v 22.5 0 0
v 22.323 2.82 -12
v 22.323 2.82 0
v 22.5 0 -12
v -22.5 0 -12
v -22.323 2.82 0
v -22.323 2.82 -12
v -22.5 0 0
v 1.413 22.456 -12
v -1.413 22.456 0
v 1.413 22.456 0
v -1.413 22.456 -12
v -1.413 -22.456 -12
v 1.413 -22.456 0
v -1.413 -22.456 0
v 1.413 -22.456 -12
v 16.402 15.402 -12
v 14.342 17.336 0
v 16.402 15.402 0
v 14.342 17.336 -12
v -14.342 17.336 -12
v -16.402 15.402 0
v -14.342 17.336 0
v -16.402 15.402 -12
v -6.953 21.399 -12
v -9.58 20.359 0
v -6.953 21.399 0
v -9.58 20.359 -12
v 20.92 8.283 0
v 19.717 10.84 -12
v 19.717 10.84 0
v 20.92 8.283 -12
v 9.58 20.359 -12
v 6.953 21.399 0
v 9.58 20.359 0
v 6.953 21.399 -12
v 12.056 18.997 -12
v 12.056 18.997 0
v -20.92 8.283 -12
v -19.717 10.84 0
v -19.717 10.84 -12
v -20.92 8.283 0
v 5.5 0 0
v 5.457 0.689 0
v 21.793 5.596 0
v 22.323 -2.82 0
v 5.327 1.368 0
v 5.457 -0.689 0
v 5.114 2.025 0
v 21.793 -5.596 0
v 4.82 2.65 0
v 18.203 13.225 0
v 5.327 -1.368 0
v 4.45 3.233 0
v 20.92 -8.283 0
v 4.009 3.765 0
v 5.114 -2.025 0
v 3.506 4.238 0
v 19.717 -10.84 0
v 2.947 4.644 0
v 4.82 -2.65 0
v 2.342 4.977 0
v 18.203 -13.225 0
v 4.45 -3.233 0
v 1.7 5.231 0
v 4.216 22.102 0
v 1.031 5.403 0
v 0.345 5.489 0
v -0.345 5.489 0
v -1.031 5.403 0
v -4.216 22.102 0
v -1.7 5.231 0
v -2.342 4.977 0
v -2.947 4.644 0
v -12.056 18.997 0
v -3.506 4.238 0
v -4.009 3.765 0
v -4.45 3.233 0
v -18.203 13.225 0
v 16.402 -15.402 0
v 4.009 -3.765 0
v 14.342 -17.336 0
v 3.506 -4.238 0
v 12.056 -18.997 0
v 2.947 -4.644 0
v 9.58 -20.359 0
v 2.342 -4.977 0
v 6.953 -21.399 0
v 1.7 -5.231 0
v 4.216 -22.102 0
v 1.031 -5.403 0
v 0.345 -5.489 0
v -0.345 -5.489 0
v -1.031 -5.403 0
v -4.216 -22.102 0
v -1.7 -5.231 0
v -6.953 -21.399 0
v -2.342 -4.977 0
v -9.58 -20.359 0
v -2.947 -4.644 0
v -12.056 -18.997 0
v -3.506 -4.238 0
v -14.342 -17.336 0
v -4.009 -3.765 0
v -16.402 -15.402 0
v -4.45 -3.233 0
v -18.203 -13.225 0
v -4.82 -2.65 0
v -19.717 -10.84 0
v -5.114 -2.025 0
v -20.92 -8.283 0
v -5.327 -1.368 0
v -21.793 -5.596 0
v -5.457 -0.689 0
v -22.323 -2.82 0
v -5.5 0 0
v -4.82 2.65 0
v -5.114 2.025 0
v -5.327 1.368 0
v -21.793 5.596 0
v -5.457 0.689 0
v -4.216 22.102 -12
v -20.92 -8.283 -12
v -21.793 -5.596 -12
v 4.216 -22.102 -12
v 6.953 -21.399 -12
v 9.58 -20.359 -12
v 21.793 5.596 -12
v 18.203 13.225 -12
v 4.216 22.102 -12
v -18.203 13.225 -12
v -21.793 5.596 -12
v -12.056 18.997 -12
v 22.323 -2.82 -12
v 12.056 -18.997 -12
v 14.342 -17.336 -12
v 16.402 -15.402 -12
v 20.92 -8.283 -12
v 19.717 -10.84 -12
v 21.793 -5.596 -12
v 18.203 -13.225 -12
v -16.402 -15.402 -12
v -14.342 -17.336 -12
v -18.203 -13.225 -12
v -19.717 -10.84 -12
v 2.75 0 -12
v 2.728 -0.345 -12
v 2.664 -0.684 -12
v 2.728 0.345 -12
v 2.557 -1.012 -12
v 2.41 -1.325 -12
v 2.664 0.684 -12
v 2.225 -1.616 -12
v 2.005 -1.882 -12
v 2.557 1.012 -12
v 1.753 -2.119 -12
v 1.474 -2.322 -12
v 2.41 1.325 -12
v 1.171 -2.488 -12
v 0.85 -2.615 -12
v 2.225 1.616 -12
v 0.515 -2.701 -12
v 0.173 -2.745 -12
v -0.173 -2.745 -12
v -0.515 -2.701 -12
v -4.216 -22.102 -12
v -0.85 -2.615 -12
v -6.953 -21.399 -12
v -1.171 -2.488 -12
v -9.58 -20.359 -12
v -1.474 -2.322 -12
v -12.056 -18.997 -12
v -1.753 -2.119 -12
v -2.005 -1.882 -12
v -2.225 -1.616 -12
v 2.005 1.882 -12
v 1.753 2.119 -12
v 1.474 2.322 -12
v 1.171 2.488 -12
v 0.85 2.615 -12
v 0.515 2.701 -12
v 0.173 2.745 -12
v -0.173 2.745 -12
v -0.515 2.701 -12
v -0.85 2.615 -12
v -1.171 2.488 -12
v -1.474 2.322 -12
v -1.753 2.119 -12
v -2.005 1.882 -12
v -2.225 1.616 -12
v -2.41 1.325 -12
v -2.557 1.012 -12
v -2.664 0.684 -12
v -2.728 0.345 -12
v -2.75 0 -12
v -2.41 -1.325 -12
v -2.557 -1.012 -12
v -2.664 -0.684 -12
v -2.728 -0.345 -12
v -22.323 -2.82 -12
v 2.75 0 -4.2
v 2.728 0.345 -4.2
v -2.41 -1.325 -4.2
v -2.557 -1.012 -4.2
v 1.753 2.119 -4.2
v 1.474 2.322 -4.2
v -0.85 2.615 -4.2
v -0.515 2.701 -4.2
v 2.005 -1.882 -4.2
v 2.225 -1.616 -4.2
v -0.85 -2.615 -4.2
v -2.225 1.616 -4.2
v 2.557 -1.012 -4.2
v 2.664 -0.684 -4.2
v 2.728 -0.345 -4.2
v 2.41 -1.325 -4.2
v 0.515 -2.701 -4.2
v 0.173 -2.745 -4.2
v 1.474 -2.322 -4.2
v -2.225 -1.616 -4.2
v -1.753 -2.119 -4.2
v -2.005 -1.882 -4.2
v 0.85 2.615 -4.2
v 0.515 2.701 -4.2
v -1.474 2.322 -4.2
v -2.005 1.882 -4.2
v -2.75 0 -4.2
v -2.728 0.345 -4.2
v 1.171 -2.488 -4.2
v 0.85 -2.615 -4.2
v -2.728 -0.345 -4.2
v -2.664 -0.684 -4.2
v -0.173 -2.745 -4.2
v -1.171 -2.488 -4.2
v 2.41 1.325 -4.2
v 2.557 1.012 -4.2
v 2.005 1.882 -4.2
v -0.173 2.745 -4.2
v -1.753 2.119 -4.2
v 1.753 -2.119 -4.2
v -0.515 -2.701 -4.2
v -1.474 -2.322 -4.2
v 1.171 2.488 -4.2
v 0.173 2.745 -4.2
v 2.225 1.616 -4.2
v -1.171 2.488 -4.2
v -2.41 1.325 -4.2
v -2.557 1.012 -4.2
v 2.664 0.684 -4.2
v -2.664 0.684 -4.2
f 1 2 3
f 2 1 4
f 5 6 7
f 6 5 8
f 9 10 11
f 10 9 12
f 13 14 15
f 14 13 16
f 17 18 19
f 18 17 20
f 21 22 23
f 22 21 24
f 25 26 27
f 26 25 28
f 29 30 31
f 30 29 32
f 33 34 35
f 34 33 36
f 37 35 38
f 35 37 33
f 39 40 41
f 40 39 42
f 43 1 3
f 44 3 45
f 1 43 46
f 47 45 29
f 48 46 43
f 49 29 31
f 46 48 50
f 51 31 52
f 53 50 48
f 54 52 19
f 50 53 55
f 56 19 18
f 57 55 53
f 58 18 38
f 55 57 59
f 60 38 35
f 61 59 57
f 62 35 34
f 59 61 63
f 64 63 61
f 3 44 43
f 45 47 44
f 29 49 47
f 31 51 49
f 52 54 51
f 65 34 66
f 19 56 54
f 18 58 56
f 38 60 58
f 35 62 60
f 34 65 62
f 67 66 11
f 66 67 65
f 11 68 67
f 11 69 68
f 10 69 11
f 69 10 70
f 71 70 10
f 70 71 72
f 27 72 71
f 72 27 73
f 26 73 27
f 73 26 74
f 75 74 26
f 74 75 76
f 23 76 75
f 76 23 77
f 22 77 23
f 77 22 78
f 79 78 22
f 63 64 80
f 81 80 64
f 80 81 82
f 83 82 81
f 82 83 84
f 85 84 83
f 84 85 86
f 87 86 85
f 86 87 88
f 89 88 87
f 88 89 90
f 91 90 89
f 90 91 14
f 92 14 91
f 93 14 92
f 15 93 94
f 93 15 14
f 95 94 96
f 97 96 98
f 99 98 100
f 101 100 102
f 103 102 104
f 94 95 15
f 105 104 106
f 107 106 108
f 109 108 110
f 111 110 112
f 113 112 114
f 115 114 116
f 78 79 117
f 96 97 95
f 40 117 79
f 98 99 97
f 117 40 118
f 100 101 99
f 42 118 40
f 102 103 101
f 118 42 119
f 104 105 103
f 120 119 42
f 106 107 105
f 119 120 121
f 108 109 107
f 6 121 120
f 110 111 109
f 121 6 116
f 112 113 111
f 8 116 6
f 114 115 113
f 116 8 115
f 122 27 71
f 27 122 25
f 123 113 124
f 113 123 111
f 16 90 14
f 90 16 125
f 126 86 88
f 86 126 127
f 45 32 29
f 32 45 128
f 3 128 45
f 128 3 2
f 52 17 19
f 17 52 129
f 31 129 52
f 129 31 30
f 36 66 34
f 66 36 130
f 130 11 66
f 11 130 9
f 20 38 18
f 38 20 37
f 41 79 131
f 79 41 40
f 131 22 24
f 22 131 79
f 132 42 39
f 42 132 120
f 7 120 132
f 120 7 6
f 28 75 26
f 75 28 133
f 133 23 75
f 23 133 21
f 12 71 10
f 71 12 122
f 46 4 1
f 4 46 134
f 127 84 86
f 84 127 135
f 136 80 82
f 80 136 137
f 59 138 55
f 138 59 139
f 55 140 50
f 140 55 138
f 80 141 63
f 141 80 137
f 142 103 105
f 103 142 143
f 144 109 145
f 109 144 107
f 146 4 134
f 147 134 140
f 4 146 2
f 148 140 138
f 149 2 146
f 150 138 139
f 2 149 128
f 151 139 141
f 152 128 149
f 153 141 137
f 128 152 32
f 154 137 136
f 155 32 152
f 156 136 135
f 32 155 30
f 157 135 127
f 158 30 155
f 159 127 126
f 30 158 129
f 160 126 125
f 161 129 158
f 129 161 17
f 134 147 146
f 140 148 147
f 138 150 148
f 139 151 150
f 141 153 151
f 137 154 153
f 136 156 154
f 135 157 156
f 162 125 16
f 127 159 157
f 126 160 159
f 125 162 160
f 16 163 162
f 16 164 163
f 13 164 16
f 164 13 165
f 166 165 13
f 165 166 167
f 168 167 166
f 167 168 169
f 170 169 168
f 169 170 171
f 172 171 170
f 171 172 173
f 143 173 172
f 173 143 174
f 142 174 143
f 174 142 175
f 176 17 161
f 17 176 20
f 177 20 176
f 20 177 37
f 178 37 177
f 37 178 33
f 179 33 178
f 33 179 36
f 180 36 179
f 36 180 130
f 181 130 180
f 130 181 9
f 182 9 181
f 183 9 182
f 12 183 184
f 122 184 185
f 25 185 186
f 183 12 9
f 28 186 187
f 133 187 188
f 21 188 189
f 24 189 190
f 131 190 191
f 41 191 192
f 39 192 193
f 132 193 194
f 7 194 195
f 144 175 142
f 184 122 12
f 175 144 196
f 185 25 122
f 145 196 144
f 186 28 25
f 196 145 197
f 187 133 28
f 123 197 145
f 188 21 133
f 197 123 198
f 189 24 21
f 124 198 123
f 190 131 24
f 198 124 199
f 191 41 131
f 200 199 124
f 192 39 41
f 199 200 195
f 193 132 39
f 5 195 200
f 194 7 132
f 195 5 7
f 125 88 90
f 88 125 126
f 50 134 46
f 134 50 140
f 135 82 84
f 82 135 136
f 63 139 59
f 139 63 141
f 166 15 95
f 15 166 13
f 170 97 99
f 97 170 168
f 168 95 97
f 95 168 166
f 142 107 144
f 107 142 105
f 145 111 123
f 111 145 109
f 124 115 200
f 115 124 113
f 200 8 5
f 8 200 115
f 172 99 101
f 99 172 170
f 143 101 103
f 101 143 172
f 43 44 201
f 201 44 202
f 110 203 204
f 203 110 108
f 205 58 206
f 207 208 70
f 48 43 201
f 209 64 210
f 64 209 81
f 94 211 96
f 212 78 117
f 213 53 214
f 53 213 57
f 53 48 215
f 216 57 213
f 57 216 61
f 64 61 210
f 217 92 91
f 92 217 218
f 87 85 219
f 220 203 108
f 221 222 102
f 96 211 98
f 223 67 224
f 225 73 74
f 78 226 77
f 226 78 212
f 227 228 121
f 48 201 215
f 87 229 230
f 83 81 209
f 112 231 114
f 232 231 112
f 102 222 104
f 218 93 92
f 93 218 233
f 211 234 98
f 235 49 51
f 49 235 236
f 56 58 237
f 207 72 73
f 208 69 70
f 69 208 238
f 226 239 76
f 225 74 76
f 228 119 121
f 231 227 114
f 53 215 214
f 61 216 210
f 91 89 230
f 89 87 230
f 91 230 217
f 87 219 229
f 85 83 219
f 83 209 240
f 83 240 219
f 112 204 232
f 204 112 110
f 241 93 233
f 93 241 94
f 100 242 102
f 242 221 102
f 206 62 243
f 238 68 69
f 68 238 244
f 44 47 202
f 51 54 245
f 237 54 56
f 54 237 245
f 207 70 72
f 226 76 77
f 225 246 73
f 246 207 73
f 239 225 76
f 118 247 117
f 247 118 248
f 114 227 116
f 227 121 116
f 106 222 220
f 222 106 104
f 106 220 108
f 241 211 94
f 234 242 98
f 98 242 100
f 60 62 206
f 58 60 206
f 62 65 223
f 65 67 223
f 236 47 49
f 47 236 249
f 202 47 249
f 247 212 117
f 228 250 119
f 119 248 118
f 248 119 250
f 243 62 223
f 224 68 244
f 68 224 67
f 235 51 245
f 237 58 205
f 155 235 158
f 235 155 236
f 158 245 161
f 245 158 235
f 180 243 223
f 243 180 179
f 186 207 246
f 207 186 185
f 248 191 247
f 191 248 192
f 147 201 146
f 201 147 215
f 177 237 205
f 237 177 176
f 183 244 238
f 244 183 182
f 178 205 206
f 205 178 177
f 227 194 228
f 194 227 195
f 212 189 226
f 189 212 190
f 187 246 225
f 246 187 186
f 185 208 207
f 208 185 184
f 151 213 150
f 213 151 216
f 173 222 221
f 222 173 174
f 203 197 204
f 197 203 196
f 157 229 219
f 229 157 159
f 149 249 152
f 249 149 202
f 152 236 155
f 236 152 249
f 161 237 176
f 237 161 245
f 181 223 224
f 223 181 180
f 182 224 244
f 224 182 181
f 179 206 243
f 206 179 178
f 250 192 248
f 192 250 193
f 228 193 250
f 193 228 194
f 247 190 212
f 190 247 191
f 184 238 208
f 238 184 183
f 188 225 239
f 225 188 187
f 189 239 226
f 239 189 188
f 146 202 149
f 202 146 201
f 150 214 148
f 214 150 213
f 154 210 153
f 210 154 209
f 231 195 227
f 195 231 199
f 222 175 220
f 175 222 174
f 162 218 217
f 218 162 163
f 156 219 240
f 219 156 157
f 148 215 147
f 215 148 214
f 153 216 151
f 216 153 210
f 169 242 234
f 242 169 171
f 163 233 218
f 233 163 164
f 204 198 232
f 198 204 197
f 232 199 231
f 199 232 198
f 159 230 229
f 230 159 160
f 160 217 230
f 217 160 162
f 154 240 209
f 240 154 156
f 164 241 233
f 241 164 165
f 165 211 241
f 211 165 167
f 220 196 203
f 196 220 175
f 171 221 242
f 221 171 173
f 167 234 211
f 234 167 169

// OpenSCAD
$fn = 50;


difference() {
	union() {
		translate(v = [0, 0, -12.0000000000]) {
			cylinder(h = 12, r = 22.5000000000);
		}
		translate(v = [0, 0, -12.0000000000]) {
			cylinder(h = 12, r = 2.8750000000);
		}
	}
	union() {
		translate(v = [0, 0, 0]) {
			rotate(a = [0, 0, 0]) {
				difference() {
					union() {
						translate(v = [0, 0, -12.0000000000]) {
							cylinder(h = 12, r = 2.2500000000);
						}
						translate(v = [0, 0, -4.2000000000]) {
							cylinder(h = 4.2000000000, r1 = 2.7500000000, r2 = 5.5000000000);
						}
						translate(v = [0, 0, -12.0000000000]) {
							cylinder(h = 12, r = 2.7500000000);
						}
						translate(v = [0, 0, -12.0000000000]) {
							cylinder(h = 12, r = 2.2500000000);
						}
					}
					union();
				}
			}
		}
	}
}
